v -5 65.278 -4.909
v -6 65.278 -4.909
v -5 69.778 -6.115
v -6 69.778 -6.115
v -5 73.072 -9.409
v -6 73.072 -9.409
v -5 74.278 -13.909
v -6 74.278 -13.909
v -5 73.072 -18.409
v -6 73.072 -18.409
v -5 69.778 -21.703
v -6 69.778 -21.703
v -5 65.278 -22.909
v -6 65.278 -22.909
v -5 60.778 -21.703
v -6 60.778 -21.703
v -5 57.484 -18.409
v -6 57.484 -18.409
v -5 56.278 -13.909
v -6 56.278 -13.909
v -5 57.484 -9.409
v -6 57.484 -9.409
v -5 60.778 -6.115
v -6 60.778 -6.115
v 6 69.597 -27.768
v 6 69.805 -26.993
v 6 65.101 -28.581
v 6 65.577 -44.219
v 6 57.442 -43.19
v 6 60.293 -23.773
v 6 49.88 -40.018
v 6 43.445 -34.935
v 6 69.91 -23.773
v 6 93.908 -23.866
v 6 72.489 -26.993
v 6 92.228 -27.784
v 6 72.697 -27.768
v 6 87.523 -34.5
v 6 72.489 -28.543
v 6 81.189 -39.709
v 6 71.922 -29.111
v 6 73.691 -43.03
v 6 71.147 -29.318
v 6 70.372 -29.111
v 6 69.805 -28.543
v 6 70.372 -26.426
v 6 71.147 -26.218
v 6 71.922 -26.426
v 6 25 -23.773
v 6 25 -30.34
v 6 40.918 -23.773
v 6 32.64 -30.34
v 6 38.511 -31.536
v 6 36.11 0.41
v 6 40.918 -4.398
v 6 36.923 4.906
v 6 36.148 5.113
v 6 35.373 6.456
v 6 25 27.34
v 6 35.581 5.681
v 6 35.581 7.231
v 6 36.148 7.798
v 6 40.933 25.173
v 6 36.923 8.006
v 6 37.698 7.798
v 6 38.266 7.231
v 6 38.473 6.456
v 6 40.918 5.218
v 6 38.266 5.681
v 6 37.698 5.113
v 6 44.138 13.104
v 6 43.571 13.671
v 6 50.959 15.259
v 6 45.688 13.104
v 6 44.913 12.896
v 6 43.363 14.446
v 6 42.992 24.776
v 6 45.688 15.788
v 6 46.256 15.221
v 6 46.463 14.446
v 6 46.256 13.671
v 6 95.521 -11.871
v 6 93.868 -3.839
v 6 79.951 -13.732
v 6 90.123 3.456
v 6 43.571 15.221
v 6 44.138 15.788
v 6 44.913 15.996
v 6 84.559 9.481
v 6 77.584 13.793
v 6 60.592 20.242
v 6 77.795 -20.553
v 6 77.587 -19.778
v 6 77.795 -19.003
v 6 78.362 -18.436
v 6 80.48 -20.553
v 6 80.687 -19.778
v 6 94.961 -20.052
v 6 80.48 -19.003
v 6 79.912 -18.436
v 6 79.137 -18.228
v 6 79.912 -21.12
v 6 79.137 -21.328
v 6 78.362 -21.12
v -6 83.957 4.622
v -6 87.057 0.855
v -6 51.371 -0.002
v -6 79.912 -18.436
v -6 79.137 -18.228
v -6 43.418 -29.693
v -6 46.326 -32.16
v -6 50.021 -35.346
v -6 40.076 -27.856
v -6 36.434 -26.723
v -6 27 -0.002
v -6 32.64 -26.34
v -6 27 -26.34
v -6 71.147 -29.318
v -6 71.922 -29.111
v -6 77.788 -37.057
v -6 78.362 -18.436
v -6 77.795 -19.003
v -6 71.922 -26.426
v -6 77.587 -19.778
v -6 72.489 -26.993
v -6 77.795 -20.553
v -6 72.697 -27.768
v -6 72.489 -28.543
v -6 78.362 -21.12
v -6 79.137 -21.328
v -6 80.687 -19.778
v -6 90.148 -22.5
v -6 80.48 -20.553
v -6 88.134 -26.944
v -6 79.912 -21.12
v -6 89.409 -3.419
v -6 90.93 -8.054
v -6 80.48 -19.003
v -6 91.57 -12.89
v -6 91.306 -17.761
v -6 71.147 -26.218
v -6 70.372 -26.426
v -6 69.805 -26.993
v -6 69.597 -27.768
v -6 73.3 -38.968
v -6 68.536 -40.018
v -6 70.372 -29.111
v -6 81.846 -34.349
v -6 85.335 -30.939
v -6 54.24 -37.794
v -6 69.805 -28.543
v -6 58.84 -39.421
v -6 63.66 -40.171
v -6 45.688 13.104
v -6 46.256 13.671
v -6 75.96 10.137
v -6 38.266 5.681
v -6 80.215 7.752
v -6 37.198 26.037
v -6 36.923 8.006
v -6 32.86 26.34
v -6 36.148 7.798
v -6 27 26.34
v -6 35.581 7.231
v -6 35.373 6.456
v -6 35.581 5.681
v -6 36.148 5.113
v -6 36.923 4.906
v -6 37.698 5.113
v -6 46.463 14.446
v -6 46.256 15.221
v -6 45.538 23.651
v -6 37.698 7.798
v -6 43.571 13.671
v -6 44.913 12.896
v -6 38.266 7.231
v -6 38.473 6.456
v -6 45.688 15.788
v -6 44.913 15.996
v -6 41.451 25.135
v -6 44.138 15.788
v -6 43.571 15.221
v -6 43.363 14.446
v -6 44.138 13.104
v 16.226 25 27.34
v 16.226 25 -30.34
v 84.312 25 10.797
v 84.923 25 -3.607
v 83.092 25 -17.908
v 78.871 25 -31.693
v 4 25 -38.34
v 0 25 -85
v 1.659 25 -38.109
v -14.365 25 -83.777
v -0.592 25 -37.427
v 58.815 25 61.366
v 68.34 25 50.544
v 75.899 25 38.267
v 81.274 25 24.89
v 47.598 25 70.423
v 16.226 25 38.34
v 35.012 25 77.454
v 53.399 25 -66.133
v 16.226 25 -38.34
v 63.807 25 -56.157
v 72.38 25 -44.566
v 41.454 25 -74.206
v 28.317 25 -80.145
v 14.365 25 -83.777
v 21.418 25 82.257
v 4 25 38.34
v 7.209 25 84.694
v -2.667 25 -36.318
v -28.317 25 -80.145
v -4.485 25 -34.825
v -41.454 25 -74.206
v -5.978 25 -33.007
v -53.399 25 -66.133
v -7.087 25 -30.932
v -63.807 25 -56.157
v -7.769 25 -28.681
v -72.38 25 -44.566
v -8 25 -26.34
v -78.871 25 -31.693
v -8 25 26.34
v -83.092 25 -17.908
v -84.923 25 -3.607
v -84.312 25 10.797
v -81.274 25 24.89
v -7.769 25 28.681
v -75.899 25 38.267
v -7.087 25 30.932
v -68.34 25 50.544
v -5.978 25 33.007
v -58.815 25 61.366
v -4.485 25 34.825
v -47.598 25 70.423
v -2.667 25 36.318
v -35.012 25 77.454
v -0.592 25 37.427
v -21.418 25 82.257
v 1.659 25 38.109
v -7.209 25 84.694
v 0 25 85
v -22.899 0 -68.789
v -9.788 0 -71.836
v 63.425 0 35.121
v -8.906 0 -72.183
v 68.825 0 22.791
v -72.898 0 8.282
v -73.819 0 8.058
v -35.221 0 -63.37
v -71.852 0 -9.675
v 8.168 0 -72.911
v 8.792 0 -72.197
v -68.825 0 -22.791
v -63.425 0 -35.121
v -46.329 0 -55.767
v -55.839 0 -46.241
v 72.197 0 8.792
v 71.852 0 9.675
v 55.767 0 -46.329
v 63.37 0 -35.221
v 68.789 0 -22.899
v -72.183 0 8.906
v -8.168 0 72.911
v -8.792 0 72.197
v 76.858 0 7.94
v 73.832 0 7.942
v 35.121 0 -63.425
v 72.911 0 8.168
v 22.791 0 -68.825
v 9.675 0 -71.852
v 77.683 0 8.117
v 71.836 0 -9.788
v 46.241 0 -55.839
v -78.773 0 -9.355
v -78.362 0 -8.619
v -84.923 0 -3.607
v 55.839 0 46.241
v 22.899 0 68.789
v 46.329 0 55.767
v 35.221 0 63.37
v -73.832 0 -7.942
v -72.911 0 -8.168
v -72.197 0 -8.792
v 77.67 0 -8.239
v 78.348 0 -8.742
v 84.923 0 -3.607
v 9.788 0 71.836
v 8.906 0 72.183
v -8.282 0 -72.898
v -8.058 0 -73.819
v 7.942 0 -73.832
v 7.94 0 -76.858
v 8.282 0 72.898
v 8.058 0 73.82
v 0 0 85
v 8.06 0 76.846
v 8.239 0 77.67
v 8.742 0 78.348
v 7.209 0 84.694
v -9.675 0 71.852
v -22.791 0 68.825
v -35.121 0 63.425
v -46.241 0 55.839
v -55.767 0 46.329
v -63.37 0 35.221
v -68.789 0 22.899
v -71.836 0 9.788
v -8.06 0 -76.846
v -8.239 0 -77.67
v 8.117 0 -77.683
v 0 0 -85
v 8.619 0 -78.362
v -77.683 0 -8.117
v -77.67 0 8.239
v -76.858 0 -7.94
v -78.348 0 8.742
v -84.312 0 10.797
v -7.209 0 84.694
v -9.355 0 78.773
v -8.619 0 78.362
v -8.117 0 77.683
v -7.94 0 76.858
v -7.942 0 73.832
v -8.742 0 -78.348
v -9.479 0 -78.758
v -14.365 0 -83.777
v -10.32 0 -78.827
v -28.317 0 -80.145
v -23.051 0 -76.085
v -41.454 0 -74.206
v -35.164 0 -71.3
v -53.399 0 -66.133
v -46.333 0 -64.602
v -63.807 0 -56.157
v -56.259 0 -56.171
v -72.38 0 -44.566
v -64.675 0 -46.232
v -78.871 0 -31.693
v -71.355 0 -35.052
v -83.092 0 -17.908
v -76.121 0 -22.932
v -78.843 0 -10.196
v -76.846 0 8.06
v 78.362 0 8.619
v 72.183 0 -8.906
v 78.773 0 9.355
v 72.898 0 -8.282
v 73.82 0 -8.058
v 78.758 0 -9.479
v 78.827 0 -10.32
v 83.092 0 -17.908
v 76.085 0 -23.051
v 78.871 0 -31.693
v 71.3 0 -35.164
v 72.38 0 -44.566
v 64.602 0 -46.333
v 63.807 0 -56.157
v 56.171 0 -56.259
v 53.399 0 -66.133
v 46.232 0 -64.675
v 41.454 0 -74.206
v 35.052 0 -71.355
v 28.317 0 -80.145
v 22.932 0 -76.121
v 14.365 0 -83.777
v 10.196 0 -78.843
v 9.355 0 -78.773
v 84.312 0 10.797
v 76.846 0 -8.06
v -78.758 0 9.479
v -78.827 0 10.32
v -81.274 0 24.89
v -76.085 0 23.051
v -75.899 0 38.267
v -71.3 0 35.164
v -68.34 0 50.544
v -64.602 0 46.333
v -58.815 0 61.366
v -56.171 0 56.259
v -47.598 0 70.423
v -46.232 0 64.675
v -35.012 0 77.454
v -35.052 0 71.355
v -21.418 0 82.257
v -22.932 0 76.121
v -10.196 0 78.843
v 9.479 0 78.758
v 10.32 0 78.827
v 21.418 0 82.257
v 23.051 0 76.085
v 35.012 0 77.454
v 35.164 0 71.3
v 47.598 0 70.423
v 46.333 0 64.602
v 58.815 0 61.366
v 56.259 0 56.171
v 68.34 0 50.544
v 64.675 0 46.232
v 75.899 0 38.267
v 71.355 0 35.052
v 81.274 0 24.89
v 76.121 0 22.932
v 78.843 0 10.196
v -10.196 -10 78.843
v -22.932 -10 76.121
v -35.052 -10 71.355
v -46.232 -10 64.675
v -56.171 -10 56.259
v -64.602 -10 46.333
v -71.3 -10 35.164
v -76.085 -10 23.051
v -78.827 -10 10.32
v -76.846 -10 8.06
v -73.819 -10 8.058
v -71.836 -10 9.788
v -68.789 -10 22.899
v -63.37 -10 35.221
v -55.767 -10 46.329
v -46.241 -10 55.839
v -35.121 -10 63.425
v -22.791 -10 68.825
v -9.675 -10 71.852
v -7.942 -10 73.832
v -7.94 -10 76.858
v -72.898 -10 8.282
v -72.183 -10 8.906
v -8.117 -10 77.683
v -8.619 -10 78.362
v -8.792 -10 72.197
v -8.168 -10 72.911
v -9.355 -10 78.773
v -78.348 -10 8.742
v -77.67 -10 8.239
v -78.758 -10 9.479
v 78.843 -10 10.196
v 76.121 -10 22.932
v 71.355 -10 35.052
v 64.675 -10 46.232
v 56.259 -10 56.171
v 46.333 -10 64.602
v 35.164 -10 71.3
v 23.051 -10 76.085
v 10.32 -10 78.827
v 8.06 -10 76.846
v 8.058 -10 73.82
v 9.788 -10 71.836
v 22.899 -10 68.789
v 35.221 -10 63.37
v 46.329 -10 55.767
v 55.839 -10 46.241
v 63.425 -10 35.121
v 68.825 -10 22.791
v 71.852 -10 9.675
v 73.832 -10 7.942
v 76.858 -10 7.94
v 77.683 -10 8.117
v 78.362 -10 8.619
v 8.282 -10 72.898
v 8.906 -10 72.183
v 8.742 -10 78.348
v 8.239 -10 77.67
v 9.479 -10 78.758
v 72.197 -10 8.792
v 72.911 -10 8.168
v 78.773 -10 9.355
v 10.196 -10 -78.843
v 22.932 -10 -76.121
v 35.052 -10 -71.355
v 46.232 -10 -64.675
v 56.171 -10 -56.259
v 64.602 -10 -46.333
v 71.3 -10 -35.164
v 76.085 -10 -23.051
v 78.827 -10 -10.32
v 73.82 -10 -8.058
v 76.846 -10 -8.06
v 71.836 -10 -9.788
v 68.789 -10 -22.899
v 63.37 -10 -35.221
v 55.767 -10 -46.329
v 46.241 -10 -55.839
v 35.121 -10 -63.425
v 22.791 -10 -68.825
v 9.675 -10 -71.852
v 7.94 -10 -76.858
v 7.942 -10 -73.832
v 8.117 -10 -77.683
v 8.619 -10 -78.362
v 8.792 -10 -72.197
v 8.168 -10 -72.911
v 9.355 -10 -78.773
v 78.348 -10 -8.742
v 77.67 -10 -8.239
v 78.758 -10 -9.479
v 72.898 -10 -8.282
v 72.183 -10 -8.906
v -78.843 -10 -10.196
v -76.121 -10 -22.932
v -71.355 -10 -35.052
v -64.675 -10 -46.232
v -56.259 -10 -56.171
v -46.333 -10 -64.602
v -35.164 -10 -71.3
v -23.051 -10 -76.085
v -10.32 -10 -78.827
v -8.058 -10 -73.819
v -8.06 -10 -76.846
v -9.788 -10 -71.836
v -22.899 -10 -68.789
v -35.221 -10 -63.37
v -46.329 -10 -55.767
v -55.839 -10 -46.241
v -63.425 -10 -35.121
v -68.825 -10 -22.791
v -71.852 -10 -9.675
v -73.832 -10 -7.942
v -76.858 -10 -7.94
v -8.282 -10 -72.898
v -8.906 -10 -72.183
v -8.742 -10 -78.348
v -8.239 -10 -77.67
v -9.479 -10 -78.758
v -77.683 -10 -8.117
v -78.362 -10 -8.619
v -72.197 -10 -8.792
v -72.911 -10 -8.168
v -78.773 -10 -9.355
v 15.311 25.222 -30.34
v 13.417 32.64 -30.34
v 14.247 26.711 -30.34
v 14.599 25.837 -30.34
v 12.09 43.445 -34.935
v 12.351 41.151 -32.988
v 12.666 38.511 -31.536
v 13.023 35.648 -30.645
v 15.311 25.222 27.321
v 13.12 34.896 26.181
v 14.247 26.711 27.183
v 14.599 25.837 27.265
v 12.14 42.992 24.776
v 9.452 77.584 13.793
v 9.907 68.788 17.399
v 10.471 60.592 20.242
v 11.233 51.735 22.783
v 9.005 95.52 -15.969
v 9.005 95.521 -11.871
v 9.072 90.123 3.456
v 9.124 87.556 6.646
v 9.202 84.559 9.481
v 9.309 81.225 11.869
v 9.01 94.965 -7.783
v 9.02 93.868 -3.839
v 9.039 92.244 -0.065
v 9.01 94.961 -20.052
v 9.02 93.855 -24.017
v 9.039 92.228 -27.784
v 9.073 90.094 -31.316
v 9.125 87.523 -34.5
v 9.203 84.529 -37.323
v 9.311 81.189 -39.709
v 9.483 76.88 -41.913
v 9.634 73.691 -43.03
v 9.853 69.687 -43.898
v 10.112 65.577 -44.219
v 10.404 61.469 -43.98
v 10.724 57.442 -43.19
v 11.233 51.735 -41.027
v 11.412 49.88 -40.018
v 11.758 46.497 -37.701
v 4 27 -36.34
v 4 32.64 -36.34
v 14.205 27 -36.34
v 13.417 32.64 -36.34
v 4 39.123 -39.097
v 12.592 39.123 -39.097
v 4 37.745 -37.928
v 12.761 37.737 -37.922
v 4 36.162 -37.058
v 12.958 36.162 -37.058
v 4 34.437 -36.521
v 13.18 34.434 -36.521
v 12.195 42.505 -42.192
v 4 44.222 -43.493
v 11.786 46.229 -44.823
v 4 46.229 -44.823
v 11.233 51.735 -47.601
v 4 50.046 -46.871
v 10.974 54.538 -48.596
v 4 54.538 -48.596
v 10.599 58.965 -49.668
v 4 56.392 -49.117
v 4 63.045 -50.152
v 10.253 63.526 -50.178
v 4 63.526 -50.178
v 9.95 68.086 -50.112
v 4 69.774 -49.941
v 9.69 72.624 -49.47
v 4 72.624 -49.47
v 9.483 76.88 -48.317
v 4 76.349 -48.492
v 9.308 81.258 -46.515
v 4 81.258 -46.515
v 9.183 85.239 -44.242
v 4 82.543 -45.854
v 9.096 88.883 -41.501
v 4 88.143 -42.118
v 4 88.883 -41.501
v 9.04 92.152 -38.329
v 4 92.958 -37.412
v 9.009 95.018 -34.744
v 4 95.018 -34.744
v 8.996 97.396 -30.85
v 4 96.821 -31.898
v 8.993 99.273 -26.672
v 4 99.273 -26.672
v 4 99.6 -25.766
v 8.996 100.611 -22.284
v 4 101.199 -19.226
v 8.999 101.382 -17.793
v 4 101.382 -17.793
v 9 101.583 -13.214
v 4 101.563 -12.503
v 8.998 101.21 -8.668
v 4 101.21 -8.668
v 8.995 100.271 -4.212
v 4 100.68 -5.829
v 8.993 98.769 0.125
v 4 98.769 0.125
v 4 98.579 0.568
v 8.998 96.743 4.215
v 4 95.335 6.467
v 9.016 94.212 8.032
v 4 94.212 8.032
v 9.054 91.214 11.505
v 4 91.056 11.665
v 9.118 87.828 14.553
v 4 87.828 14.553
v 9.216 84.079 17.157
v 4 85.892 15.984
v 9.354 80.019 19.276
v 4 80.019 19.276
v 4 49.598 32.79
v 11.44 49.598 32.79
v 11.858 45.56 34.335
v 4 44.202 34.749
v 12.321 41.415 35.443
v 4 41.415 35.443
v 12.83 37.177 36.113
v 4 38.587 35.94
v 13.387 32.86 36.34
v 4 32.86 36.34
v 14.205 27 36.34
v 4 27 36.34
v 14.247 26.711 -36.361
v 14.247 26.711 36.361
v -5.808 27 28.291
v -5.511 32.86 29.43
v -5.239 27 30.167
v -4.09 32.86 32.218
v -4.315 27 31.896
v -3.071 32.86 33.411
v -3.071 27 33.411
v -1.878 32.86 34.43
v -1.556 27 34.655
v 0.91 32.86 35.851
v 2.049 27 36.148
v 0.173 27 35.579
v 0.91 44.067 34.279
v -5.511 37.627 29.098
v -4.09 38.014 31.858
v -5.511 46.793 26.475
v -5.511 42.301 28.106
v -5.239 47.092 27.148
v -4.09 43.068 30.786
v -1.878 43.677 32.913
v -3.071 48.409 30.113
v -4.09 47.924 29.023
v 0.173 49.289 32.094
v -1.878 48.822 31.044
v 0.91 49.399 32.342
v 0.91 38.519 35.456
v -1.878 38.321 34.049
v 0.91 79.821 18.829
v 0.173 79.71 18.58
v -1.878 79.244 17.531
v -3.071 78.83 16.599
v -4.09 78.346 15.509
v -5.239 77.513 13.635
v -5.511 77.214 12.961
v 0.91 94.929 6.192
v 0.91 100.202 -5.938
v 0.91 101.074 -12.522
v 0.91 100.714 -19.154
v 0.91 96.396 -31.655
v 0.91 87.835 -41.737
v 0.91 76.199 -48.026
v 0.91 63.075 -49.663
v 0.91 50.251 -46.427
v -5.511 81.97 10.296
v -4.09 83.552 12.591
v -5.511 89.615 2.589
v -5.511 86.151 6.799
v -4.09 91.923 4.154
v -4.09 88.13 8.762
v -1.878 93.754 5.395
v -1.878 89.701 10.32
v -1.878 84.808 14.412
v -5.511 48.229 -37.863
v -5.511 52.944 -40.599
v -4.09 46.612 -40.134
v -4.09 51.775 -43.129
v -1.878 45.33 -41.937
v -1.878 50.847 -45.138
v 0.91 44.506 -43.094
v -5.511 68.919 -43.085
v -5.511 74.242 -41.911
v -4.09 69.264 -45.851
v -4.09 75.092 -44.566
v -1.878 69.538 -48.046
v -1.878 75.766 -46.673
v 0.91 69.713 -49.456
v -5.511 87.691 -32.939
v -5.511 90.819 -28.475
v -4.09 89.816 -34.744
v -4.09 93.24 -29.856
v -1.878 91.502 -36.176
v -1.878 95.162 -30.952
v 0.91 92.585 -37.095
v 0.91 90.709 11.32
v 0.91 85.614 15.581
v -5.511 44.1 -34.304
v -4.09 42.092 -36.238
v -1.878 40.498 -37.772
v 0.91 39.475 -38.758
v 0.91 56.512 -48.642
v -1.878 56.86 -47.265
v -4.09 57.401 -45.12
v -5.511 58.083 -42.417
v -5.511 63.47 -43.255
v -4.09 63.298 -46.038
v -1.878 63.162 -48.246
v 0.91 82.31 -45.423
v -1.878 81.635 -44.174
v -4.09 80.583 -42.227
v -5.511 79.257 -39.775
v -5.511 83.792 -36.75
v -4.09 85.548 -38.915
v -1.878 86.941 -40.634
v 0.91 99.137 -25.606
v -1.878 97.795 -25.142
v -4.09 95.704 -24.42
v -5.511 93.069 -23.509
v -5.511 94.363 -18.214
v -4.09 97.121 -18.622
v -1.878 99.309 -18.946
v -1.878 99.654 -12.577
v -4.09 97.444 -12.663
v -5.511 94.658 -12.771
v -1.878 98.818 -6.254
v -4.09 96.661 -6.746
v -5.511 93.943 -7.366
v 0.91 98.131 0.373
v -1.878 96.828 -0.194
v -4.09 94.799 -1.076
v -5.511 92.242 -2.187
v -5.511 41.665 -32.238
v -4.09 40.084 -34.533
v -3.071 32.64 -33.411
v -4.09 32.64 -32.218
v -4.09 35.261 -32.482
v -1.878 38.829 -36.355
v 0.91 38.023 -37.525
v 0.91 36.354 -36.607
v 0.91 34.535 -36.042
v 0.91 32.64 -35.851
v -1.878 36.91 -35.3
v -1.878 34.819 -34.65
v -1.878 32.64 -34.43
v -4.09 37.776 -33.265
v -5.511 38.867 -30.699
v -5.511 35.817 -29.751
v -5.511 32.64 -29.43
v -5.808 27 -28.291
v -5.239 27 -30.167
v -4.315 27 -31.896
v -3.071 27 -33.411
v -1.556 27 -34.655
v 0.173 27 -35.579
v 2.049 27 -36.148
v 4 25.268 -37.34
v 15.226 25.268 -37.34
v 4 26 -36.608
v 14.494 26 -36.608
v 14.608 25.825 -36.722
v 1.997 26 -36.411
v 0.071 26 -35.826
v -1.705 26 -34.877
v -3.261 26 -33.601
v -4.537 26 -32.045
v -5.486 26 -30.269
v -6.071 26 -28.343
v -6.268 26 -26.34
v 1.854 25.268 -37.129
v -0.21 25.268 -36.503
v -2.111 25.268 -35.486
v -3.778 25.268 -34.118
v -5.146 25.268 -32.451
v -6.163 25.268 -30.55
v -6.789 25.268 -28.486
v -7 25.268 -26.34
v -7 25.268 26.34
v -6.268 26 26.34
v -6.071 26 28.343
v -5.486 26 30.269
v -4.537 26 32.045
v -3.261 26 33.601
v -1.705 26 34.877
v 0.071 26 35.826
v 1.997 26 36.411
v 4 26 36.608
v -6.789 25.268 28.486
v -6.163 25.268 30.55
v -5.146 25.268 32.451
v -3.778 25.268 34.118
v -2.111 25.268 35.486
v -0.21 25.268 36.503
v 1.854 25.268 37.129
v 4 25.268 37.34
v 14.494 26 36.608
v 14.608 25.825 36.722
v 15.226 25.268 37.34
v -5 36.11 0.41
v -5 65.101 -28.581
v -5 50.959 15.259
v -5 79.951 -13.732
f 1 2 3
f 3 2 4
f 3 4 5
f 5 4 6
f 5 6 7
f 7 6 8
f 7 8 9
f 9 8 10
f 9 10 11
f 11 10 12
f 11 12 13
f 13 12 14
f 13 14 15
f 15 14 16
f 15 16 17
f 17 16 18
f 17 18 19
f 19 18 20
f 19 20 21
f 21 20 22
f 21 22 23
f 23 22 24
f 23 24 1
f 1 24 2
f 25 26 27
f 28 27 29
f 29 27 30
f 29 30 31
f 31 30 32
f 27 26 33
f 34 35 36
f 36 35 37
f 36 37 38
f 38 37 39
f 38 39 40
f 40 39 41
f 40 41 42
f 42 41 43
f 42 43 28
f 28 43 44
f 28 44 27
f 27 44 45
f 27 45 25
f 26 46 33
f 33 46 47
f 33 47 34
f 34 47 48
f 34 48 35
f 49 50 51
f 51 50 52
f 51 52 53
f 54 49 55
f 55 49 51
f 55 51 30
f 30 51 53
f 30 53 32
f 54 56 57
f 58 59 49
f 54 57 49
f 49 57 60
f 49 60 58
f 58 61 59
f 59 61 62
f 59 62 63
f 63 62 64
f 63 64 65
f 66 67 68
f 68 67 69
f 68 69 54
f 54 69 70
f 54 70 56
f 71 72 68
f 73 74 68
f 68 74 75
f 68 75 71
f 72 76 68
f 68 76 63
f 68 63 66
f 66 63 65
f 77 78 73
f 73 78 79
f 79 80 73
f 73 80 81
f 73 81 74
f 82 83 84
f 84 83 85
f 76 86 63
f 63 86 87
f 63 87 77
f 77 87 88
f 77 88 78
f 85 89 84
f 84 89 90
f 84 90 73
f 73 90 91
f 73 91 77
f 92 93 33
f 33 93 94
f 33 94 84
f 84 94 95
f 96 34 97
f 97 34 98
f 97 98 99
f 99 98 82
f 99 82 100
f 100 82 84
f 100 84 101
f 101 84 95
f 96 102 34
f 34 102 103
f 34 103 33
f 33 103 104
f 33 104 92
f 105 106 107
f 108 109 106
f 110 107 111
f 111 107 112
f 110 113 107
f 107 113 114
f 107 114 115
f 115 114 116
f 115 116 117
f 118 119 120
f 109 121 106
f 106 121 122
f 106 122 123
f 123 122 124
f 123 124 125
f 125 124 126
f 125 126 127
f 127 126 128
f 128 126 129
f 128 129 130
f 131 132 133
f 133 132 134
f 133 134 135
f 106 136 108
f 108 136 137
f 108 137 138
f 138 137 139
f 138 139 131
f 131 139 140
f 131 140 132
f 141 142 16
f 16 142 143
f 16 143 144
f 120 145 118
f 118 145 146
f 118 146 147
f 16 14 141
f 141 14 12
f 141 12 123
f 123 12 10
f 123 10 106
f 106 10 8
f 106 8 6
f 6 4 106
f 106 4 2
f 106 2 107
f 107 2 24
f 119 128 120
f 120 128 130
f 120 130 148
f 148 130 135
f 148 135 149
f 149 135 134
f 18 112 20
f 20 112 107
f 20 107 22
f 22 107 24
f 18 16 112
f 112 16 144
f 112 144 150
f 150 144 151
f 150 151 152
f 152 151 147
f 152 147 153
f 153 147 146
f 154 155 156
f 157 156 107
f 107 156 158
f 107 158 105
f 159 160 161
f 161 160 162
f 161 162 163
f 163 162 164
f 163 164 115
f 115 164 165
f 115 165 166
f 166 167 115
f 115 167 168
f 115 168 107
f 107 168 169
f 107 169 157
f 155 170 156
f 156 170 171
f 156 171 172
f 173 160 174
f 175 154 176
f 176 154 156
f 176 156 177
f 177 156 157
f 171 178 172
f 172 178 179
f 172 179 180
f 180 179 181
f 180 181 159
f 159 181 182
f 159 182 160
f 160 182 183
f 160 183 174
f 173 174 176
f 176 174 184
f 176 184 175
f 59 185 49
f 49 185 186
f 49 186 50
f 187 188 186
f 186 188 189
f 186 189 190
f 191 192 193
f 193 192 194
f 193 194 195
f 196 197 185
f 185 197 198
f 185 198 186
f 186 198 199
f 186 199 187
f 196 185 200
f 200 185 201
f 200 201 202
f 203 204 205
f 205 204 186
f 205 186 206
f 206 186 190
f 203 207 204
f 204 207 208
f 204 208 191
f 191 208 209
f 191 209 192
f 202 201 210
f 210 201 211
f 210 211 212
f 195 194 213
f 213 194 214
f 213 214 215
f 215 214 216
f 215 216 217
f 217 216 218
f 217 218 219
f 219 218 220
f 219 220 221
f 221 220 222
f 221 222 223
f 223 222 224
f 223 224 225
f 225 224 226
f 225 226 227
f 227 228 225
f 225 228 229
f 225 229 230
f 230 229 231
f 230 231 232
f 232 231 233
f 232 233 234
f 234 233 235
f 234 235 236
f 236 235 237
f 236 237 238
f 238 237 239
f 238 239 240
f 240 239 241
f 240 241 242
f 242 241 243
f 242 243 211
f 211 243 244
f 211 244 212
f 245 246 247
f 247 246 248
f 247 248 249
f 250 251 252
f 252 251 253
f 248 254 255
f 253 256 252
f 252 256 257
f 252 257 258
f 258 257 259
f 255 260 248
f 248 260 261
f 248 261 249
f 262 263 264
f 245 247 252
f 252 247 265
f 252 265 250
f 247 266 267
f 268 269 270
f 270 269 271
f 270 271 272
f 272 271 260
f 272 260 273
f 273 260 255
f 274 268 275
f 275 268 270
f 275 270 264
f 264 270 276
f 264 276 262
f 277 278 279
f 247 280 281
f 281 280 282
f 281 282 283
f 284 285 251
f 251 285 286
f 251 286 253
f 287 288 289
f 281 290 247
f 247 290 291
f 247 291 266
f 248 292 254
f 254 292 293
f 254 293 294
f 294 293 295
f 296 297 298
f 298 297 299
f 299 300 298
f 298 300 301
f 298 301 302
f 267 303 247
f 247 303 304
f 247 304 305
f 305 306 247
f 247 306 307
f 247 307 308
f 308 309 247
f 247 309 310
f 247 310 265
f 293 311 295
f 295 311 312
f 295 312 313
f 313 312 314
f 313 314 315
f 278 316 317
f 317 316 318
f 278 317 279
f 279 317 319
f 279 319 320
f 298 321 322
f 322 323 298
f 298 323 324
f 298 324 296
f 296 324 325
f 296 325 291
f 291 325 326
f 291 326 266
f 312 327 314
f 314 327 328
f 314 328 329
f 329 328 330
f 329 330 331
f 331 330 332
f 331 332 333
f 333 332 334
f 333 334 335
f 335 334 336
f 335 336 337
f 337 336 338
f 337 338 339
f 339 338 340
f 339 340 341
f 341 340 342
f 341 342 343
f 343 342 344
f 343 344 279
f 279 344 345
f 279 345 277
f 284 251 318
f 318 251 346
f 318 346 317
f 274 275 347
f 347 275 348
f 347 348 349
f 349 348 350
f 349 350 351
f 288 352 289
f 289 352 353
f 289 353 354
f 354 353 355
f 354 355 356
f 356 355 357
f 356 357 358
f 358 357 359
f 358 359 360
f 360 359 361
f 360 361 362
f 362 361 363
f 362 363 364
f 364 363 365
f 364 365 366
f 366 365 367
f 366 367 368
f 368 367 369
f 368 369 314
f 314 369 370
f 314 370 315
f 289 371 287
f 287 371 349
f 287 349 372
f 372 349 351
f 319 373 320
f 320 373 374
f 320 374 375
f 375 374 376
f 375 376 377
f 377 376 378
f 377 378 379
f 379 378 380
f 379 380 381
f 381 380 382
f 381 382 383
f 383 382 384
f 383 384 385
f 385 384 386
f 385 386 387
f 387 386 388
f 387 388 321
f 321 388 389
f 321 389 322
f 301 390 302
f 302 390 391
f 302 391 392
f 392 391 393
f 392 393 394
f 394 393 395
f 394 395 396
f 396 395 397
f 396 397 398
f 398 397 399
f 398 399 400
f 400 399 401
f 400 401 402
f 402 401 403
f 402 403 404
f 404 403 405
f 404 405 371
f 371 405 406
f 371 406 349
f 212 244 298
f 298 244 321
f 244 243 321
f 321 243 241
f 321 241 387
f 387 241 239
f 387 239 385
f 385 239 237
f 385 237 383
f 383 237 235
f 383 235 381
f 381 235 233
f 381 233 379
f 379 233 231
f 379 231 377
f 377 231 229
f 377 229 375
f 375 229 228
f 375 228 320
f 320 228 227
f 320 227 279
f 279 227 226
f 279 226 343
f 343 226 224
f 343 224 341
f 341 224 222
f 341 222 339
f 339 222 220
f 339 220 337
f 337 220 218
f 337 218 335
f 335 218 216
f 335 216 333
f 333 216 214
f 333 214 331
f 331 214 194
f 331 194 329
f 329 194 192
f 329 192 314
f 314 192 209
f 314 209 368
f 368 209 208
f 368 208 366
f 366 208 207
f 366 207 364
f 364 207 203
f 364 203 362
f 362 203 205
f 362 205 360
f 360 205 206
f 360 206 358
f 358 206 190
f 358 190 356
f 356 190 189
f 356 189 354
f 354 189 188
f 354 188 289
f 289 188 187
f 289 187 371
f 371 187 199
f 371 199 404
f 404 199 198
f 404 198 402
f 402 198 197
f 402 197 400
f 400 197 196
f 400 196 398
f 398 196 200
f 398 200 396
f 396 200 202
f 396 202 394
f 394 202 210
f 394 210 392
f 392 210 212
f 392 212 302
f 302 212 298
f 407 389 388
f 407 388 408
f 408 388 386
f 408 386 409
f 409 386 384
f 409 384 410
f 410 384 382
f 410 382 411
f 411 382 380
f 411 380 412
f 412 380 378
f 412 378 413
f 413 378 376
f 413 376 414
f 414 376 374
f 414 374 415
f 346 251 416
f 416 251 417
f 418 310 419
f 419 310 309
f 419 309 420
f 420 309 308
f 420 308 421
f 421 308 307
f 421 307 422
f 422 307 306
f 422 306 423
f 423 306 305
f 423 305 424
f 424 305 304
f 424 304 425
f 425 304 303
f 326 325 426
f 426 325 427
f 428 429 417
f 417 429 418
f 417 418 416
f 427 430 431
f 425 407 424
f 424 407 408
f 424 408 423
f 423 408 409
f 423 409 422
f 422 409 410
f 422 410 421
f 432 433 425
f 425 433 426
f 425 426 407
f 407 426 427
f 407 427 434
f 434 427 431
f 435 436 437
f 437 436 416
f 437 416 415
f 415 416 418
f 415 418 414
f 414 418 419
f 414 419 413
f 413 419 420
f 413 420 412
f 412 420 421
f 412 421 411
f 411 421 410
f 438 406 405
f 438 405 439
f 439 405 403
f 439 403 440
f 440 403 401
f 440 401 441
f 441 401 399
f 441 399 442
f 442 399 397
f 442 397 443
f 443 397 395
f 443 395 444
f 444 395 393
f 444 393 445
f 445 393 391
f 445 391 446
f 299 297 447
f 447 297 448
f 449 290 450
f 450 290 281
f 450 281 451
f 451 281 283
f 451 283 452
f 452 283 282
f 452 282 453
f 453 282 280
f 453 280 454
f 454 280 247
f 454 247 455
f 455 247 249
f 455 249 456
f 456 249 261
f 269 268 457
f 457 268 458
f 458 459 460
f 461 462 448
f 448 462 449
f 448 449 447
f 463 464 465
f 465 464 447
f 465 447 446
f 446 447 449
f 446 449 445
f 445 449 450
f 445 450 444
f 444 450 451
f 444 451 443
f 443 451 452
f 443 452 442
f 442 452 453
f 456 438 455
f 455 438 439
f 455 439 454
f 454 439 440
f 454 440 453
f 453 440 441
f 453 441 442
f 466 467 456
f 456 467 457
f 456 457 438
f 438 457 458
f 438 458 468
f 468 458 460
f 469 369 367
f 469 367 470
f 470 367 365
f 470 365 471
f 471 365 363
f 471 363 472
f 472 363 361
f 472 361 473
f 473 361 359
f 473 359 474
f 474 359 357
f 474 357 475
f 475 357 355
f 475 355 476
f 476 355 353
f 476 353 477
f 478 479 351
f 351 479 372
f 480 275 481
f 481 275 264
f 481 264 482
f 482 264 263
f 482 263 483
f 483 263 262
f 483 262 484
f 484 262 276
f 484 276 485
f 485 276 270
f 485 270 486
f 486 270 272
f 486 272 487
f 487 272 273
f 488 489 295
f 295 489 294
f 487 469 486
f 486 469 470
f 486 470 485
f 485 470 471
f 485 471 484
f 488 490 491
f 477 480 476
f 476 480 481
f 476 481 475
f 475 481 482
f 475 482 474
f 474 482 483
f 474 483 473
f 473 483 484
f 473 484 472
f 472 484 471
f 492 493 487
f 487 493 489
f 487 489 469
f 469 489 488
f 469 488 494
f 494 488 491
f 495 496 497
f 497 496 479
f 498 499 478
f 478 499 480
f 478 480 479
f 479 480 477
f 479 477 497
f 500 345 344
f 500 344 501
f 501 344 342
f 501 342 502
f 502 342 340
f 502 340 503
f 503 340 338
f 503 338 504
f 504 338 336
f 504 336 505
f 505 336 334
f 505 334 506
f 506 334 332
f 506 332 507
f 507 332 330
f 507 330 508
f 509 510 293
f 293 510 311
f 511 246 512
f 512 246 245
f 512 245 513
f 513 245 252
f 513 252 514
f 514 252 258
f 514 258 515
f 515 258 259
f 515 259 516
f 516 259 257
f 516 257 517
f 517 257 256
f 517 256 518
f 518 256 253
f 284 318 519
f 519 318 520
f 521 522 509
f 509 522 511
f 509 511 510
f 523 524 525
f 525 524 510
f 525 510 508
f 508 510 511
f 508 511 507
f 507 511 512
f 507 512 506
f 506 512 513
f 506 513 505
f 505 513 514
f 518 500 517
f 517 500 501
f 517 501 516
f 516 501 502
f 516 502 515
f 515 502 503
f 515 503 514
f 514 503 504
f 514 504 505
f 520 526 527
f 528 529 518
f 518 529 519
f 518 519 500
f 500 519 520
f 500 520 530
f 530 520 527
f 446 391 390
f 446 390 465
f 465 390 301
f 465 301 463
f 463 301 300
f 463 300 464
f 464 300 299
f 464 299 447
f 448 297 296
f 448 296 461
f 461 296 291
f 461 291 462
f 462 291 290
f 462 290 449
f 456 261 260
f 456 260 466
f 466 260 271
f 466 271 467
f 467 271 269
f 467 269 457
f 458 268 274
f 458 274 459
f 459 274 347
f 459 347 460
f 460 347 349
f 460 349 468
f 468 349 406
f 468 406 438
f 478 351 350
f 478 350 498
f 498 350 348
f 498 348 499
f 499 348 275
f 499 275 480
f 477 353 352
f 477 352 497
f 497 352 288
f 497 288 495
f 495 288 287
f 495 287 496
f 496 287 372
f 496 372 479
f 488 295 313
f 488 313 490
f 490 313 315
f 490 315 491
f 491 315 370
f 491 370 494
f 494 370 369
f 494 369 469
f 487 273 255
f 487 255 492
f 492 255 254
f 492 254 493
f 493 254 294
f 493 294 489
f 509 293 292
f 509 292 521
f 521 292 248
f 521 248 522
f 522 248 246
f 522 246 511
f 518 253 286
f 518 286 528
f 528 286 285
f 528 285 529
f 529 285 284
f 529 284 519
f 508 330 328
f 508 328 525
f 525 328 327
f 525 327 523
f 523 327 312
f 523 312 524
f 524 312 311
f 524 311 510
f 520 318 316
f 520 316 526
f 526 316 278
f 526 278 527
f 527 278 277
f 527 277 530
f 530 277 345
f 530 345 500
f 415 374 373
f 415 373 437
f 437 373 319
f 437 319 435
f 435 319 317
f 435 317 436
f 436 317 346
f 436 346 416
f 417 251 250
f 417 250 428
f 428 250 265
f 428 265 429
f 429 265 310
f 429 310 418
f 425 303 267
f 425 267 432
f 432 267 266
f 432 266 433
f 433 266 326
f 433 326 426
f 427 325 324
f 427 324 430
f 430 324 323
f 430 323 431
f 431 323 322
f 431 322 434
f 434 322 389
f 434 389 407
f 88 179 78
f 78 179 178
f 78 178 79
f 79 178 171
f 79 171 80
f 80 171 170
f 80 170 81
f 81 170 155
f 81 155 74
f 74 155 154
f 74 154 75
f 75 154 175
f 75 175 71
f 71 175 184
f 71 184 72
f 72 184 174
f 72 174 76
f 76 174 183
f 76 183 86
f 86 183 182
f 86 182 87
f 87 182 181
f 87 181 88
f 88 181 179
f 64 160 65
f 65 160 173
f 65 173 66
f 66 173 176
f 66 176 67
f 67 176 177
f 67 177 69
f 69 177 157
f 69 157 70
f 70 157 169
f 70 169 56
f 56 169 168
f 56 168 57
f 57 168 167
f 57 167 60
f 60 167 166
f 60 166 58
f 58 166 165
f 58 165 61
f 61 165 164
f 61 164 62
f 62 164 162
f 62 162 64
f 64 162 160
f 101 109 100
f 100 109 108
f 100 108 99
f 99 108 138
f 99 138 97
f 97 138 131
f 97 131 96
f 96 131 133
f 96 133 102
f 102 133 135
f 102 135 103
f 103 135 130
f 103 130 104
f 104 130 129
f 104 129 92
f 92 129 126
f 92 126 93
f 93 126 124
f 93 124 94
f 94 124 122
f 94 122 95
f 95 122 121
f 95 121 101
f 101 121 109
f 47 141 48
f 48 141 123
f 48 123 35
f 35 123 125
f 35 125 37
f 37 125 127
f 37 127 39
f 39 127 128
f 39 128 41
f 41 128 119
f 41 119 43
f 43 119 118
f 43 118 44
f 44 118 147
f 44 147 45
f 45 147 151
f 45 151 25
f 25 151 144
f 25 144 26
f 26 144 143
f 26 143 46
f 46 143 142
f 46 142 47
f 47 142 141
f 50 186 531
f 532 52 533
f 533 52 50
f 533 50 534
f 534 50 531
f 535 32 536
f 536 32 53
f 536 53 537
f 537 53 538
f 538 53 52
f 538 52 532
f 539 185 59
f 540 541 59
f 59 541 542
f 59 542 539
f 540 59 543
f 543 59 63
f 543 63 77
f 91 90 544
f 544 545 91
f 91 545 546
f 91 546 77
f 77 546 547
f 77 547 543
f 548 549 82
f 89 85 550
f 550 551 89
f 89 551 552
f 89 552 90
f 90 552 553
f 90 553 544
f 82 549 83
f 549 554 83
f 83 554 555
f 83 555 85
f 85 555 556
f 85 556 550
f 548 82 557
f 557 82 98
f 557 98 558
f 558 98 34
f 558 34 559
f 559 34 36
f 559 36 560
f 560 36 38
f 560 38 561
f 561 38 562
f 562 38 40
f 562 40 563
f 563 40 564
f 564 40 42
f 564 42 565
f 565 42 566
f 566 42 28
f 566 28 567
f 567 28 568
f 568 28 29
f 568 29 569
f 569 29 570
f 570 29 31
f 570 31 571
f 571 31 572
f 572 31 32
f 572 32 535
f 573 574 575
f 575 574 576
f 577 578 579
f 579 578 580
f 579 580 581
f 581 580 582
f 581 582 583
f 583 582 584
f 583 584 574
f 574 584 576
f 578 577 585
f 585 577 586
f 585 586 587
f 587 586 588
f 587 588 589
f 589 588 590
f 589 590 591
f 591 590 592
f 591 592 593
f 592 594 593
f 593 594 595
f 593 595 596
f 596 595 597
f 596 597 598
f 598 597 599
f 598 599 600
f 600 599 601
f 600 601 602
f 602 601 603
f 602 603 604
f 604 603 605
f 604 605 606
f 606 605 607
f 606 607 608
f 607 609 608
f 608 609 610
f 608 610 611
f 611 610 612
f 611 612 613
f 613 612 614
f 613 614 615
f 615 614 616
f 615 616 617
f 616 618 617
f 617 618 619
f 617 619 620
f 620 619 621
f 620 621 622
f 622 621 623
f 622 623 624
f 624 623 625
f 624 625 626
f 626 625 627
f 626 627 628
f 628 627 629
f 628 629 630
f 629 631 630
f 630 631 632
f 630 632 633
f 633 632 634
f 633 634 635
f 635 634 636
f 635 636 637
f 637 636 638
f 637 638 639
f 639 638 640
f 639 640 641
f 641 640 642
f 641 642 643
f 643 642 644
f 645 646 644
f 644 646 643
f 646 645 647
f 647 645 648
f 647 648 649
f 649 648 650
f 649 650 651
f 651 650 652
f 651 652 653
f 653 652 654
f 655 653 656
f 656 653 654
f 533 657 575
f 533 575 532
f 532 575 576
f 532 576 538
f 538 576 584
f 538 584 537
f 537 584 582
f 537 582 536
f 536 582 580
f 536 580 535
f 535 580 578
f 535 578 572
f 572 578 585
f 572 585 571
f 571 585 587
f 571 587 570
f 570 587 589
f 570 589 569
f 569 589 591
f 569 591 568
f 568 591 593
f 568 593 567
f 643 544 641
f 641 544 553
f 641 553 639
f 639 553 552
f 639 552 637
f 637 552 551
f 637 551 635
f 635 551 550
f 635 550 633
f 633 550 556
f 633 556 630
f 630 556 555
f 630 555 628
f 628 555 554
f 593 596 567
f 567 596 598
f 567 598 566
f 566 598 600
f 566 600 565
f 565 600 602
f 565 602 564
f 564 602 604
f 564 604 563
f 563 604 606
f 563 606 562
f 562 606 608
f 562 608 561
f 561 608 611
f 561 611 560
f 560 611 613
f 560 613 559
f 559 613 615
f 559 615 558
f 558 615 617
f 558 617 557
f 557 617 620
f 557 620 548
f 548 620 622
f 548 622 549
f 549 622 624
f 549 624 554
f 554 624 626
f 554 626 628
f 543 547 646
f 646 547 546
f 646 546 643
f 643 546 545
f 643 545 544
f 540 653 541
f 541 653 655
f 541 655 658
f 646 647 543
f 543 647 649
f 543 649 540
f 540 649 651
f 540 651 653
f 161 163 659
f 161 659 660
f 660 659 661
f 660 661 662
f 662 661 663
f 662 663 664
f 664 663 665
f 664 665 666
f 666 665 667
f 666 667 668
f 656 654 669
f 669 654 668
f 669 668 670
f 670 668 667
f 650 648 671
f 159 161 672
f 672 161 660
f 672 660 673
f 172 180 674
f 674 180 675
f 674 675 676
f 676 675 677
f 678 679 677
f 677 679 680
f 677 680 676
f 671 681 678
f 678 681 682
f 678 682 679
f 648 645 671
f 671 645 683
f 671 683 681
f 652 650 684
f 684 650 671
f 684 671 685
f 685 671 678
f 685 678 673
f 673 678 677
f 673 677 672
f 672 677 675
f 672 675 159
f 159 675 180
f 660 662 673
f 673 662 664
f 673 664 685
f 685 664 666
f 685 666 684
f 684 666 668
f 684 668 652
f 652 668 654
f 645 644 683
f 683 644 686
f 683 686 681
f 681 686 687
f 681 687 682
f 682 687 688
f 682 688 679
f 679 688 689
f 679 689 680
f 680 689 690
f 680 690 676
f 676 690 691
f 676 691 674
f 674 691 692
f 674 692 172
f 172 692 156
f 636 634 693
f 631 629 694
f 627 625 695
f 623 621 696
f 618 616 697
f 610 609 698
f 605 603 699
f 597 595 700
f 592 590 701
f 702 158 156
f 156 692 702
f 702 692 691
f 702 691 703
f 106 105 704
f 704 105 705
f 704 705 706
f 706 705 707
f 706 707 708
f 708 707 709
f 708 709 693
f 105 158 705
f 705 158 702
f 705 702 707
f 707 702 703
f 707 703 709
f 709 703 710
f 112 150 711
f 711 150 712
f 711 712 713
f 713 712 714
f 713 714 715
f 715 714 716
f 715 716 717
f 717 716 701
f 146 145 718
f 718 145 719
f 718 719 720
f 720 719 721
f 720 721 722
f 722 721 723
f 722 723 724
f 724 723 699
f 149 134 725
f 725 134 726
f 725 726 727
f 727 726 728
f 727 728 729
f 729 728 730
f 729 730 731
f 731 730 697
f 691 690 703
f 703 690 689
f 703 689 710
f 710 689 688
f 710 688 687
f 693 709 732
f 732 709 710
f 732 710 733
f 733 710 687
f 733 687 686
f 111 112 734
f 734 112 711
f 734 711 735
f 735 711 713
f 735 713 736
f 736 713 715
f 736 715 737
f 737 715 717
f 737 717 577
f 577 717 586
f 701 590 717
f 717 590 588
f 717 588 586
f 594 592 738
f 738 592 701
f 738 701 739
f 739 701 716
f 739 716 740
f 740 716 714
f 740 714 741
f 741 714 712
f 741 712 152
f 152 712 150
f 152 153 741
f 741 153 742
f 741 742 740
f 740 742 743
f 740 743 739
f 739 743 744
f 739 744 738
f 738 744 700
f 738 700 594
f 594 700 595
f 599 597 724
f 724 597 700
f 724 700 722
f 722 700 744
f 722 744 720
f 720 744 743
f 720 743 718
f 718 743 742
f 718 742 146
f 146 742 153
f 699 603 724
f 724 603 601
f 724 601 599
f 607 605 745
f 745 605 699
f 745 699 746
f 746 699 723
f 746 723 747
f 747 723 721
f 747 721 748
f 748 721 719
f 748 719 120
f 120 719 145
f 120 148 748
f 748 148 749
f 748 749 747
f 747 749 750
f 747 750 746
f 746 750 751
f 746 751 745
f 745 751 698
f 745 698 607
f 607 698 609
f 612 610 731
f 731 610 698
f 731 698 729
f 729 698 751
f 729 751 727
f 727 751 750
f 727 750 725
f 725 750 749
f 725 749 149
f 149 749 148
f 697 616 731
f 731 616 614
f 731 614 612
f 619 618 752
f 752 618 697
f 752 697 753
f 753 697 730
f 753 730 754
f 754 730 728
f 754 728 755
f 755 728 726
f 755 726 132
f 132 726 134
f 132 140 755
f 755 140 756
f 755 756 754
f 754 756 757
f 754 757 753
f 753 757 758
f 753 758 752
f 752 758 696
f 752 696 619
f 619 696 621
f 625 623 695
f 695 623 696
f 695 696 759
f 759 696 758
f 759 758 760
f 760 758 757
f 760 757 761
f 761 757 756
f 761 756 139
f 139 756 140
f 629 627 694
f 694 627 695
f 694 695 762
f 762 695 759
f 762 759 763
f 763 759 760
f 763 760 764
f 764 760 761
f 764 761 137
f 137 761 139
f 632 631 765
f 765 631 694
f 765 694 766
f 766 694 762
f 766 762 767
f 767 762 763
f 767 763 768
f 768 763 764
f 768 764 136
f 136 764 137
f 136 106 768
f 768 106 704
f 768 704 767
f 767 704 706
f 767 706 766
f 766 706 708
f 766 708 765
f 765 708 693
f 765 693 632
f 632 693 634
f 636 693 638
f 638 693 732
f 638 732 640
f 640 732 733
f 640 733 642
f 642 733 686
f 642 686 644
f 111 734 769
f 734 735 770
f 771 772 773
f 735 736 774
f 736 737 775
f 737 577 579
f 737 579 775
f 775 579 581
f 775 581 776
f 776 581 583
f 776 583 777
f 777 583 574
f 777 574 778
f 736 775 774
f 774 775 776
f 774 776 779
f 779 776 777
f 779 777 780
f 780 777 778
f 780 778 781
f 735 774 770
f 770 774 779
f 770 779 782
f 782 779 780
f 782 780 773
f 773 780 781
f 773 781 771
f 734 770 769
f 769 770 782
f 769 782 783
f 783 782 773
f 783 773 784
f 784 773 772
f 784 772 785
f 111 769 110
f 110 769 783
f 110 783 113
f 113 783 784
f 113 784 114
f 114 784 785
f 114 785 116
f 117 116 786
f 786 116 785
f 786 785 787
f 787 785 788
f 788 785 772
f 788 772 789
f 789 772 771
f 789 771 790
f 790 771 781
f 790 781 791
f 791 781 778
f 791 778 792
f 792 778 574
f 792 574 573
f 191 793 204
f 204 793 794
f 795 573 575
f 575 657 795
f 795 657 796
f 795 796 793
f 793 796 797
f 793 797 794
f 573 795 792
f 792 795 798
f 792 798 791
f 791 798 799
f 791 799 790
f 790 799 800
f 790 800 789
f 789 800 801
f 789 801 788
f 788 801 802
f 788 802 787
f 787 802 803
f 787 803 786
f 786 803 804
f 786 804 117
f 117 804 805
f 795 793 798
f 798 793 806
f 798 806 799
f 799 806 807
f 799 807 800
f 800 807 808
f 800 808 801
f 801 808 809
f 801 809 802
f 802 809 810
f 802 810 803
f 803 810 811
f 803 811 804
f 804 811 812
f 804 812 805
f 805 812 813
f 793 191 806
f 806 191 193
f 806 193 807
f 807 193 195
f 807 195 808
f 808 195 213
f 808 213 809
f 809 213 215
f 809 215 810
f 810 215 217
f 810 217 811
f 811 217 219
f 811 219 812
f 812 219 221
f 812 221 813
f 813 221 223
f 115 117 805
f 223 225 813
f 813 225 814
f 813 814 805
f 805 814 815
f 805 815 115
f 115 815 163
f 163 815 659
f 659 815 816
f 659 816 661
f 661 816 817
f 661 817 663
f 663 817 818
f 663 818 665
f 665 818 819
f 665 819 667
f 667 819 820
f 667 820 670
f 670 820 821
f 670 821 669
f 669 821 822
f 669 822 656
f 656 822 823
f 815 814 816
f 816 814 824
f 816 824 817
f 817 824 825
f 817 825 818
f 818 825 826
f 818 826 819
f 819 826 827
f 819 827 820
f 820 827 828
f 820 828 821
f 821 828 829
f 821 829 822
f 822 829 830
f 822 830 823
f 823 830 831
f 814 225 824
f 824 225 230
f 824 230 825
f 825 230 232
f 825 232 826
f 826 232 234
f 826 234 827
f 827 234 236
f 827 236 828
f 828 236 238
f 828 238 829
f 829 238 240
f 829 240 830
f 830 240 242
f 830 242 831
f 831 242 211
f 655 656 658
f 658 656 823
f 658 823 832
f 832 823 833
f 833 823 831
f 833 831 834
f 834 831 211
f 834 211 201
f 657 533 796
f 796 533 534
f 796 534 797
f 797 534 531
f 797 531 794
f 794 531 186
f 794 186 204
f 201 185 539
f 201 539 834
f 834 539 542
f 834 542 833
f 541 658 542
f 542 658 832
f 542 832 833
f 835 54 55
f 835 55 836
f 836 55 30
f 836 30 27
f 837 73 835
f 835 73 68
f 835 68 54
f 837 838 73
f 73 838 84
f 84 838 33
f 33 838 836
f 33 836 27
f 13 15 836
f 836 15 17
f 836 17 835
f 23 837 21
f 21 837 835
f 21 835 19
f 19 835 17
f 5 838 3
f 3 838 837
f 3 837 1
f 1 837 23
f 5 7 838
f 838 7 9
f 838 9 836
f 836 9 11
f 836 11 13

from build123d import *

# Parameters (mm, degrees)
SKETCH1_R                       = 85
BOSS_EXTRUDE1_DEPTH             = 25
BOSS_EXTRUDE2_DEPTH             = 10
FILLET1_R                       = 2
SKETCH3_R                       = 9
BOSS_EXTRUDE3_DEPTH             = 6
CUT_EXTRUDE1_DEPTH              = 151.982311708
CUT_EXTRUDE1_DEPTH_BACK         = 157.982311708
CUT_EXTRUDE1_START              = 6
SKETCH4_R                       = 1.55
BOSS_EXTRUDE5_DEPTH             = 9
BOSS_EXTRUDE5_DIRECTION_2_REACH = 158.982
CUT_EXTRUDE9_DEPTH              = 158.386549836
CUT_EXTRUDE9_DEPTH_BACK         = 158.386549836
FILLET3_R                       = 10
FILLET4_R                       = 2
FILLET5_R                       = 2
CUT_EXTRUDE11_DEPTH             = 11


with BuildPart() as part:
    # Sketch1 → Boss-Extrude1 (new body)
    with BuildSketch(Plane(origin=(0, 0, 0), x_dir=(1, 0, 0), z_dir=(0, 1, 0))):
        with Locations(Location((0, 0, 0), (0, 0, 270))):
            Circle(SKETCH1_R)
    extrude(amount=BOSS_EXTRUDE1_DEPTH)

    # Sketch2 → Boss-Extrude2 (add)
    with BuildSketch(Plane.XZ):
        with BuildLine():
            Line((-7.937838503, 79.102722582), (-7.943370347, 72.063533549))
            ThreePointArc((-7.943370347, 72.063533549), (-51.22493832, 51.305513292), (-72.050959732, 8.056624713))
            Line((-72.050959732, 8.056624713), (-79.090148765, 8.062156557))
            ThreePointArc((-79.090148765, 8.062156557), (-56.170794433, 56.259149058), (-7.937838503, 79.102722582))
        make_face()
        with BuildLine():
            Line((-79.102722582, -7.937838503), (-72.063533549, -7.943370347))
            ThreePointArc((-72.063533549, -7.943370347), (-51.305513292, -51.22493832), (-8.056624713, -72.050959732))
            Line((-8.056624713, -72.050959732), (-8.062156557, -79.090148765))
            ThreePointArc((-8.062156557, -79.090148765), (-56.259149058, -56.170794433), (-79.102722582, -7.937838503))
        make_face()
        with BuildLine():
            Line((8.062156557, 79.090148765), (8.056624713, 72.050959732))
            ThreePointArc((8.056624713, 72.050959732), (51.305513292, 51.22493832), (72.063533549, 7.943370347))
            Line((72.063533549, 7.943370347), (79.102722582, 7.937838503))
            ThreePointArc((79.102722582, 7.937838503), (56.259149058, 56.170794433), (8.062156557, 79.090148765))
        make_face()
        with BuildLine():
            Line((72.050959732, -8.056624713), (79.090148765, -8.062156557))
            ThreePointArc((79.090148765, -8.062156557), (56.170794433, -56.259149058), (7.937838503, -79.102722582))
            Line((7.937838503, -79.102722582), (7.943370347, -72.063533549))
            ThreePointArc((7.943370347, -72.063533549), (51.22493832, -51.305513292), (72.050959732, -8.056624713))
        make_face()
    extrude(amount=BOSS_EXTRUDE2_DEPTH)

    # Fillet1
    fillet1_edges = [part.edges().sort_by_distance(p)[0] for p in [
        (79.102722582, -5, 7.937838503),
        (8.062156557, -5, 79.090148765),
        (8.056624713, -5, 72.050959732),
        (72.063533549, -5, 7.943370347),
        (7.937838503, -5, -79.102722582),
        (79.090148765, -5, -8.062156557),
        (72.050959732, -5, -8.056624713),
        (7.943370347, -5, -72.063533549),
        (-79.102722582, -5, -7.937838503),
        (-8.062156557, -5, -79.090148765),
        (-8.056624713, -5, -72.050959732),
        (-72.063533549, -5, -7.943370347),
        (-7.937838503, -5, 79.102722582),
        (-79.090148765, -5, 8.062156557),
        (-72.050959732, -5, 8.056624713),
        (-7.943370347, -5, 72.063533549),
    ]]
    fillet(fillet1_edges, radius=FILLET1_R)

    # Sketch3 → Boss-Extrude3 (add, symmetric)
    with BuildSketch(Plane(origin=(0, 0, 0), x_dir=(0, 0, -1), z_dir=(1, 0, 0))):
        with BuildLine():
            Line((30.34, 25), (-30.34, 25))
            Line((-30.34, 25), (-30.34, 32.86))
            ThreePointArc((-30.34, 32.86), (-29.573250676, 40.170078852), (-27.306377926, 47.161963097))
            Line((-27.306377926, 47.161963097), (-13.792799414, 77.583540747))
            ThreePointArc((-13.792799414, 77.583540747), (31.301699468, 90.103510982), (34.93507351, 43.444513166))
            ThreePointArc((34.93507351, 43.444513166), (31.536487814, 38.51052394), (30.34, 32.64))
            Line((30.34, 32.64), (30.34, 25))
        make_face()
        with Locations((13.908912319, 65.278154724)):
            Circle(SKETCH3_R, mode=Mode.SUBTRACT)
    extrude(amount=BOSS_EXTRUDE3_DEPTH, both=True)

    # Sketch4 → Cut-Extrude1 (cut, two sides: drawn at the far end of the back side and taken through both)
    with BuildSketch(Plane(origin=(6, 0, 0), x_dir=(0, 0, -1), z_dir=(1, 0, 0)).offset(CUT_EXTRUDE1_START - CUT_EXTRUDE1_DEPTH_BACK)):
        with Locations(Location((27.76820523, 71.147141008, 0), (0, 0, 180))):
            Circle(SKETCH4_R)
        with Locations(Location((19.777898603, 79.137447635, 0), (0, 0, 180))):
            Circle(SKETCH4_R)
        with Locations(Location((-6.455762979, 36.923172798, 0), (0, 0, 180))):
            Circle(SKETCH4_R)
        with Locations(Location((-14.446069607, 44.913479426, 0), (0, 0, 180))):
            Circle(SKETCH4_R)
    extrude(amount=CUT_EXTRUDE1_DEPTH + CUT_EXTRUDE1_DEPTH_BACK, mode=Mode.SUBTRACT)

    # Sketch7 → Boss-Extrude5 (add)
    with BuildSketch(Plane(origin=(6, 0, 0), x_dir=(0, 0, -1), z_dir=(1, 0, 0))):
        with BuildLine():
            Line((36.34, 25), (36.34, 32.64))
            ThreePointArc((36.34, 32.64), (37.057892688, 36.162314364), (39.097044106, 39.122707899))
            ThreePointArc((39.097044106, 39.122707899), (34.744470977, 95.01750369), (-19.276145073, 80.019299435))
            Line((-19.276145073, 80.019299435), (-32.789723585, 49.597721785))
            ThreePointArc((-32.789723585, 49.597721785), (-35.442666062, 41.415053962), (-36.34, 32.86))
            Line((-36.34, 32.86), (-36.34, 25))
            Line((-36.34, 25), (-27.34, 25))
            ThreePointArc((-27.34, 25), (-22.752054714, 51.854864954), (-13.792799414, 77.583540747))
            ThreePointArc((-13.792799414, 77.583540747), (31.301699468, 90.103510982), (34.93507351, 43.444513166))
            ThreePointArc((34.93507351, 43.444513166), (31.536487814, 38.51052394), (30.34, 32.64))
            Line((30.34, 32.64), (30.34, 25))
            Line((30.34, 25), (36.34, 25))
        make_face()
    extrude(amount=BOSS_EXTRUDE5_DEPTH)

    # Boss-Extrude5 direction 2: up to this face of the body (flat: up to its plane)
    boss_extrude5_direction_2_end = Plane(part.part.faces().sort_by_distance((-6, 56.749631144, -7.806138982))[0])
    # Sketch7 → Boss-Extrude5 direction 2 (add, up to the picked face)
    with BuildSketch(Plane(origin=(6, 0, 0), x_dir=(0, 0, -1), z_dir=(1, 0, 0)), mode=Mode.PRIVATE) as boss_extrude5_direction_2_sk1:
        with BuildLine():
            Line((36.34, 25), (36.34, 32.64))
            ThreePointArc((36.34, 32.64), (37.057892688, 36.162314364), (39.097044106, 39.122707899))
            ThreePointArc((39.097044106, 39.122707899), (34.744470977, 95.01750369), (-19.276145073, 80.019299435))
            Line((-19.276145073, 80.019299435), (-32.789723585, 49.597721785))
            ThreePointArc((-32.789723585, 49.597721785), (-35.442666062, 41.415053962), (-36.34, 32.86))
            Line((-36.34, 32.86), (-36.34, 25))
            Line((-36.34, 25), (-27.34, 25))
            ThreePointArc((-27.34, 25), (-22.752054714, 51.854864954), (-13.792799414, 77.583540747))
            ThreePointArc((-13.792799414, 77.583540747), (31.301699468, 90.103510982), (34.93507351, 43.444513166))
            ThreePointArc((34.93507351, 43.444513166), (31.536487814, 38.51052394), (30.34, 32.64))
            Line((30.34, 32.64), (30.34, 25))
            Line((30.34, 25), (36.34, 25))
        make_face()
    boss_extrude5_direction_2_tool1 = split(extrude(boss_extrude5_direction_2_sk1.sketch, amount=-BOSS_EXTRUDE5_DIRECTION_2_REACH, mode=Mode.PRIVATE), bisect_by=boss_extrude5_direction_2_end, keep=Keep.BOTH, mode=Mode.PRIVATE)
    add(boss_extrude5_direction_2_tool1.solids().sort_by(Axis((6, 91.050112, -31.964893), (-1, 0, 0)))[0])

    # Sketch8 → Cut-Extrude9 (cut, two sides: drawn at the far end of the back side and taken through both)
    with BuildSketch(Plane.XY.offset(-CUT_EXTRUDE9_DEPTH_BACK)):
        with BuildLine():
            Line((15, 101.589990006), (9, 101.589990006))
            ThreePointArc((9, 101.589990006), (10.277543258, 63.189256484), (14.5, 25))
            Line((14.5, 25), (15, 25))
            Line((15, 25), (15, 101.589990006))
        make_face()
    extrude(amount=CUT_EXTRUDE9_DEPTH + CUT_EXTRUDE9_DEPTH_BACK, mode=Mode.SUBTRACT)

    # Fillet3
    fillet3_edges = [part.edges().sort_by_distance(p)[0] for p in [
        (-6, 28.82, -36.34),
        (-6, 36.162314364, -37.057892688),
        (-6, 95.01750369, -34.744470977),
        (-6, 64.80851061, 26.032934329),
        (-6, 41.415053962, 35.442666062),
        (-6, 28.93, 36.34),
    ]]
    fillet(fillet3_edges, radius=FILLET3_R)

    # Fillet4
    fillet4_edges = [part.edges().sort_by_distance(p)[0] for p in [
        (9.25, 25, -36.34),
        (-6, 25, 0),
        (9.25, 25, 36.34),
        (-3.071067812, 25, -33.411067812),
        (-3.071067812, 25, 33.411067812),
    ]]
    fillet(fillet4_edges, radius=FILLET4_R)

    # Fillet5
    fillet5_edges = [part.edges().sort_by_distance(p)[0] for p in [
        (14.5, 25, -34.34),
        (14.5, 25, 32.84),
    ]]
    fillet(fillet5_edges, radius=FILLET5_R)

    # Sketch4<3> → Cut-Extrude11 (cut)
    with BuildSketch(Plane(origin=(6, 0, 0), x_dir=(0, 0, -1), z_dir=(1, 0, 0))):
        Polygon((-0.41, 36.11), (28.581378029, 65.101378029), (13.732135624, 79.950620434), (-15.259242405, 50.959242405), align=None)
    extrude(amount=-CUT_EXTRUDE11_DEPTH, mode=Mode.SUBTRACT)


solid = part.part
